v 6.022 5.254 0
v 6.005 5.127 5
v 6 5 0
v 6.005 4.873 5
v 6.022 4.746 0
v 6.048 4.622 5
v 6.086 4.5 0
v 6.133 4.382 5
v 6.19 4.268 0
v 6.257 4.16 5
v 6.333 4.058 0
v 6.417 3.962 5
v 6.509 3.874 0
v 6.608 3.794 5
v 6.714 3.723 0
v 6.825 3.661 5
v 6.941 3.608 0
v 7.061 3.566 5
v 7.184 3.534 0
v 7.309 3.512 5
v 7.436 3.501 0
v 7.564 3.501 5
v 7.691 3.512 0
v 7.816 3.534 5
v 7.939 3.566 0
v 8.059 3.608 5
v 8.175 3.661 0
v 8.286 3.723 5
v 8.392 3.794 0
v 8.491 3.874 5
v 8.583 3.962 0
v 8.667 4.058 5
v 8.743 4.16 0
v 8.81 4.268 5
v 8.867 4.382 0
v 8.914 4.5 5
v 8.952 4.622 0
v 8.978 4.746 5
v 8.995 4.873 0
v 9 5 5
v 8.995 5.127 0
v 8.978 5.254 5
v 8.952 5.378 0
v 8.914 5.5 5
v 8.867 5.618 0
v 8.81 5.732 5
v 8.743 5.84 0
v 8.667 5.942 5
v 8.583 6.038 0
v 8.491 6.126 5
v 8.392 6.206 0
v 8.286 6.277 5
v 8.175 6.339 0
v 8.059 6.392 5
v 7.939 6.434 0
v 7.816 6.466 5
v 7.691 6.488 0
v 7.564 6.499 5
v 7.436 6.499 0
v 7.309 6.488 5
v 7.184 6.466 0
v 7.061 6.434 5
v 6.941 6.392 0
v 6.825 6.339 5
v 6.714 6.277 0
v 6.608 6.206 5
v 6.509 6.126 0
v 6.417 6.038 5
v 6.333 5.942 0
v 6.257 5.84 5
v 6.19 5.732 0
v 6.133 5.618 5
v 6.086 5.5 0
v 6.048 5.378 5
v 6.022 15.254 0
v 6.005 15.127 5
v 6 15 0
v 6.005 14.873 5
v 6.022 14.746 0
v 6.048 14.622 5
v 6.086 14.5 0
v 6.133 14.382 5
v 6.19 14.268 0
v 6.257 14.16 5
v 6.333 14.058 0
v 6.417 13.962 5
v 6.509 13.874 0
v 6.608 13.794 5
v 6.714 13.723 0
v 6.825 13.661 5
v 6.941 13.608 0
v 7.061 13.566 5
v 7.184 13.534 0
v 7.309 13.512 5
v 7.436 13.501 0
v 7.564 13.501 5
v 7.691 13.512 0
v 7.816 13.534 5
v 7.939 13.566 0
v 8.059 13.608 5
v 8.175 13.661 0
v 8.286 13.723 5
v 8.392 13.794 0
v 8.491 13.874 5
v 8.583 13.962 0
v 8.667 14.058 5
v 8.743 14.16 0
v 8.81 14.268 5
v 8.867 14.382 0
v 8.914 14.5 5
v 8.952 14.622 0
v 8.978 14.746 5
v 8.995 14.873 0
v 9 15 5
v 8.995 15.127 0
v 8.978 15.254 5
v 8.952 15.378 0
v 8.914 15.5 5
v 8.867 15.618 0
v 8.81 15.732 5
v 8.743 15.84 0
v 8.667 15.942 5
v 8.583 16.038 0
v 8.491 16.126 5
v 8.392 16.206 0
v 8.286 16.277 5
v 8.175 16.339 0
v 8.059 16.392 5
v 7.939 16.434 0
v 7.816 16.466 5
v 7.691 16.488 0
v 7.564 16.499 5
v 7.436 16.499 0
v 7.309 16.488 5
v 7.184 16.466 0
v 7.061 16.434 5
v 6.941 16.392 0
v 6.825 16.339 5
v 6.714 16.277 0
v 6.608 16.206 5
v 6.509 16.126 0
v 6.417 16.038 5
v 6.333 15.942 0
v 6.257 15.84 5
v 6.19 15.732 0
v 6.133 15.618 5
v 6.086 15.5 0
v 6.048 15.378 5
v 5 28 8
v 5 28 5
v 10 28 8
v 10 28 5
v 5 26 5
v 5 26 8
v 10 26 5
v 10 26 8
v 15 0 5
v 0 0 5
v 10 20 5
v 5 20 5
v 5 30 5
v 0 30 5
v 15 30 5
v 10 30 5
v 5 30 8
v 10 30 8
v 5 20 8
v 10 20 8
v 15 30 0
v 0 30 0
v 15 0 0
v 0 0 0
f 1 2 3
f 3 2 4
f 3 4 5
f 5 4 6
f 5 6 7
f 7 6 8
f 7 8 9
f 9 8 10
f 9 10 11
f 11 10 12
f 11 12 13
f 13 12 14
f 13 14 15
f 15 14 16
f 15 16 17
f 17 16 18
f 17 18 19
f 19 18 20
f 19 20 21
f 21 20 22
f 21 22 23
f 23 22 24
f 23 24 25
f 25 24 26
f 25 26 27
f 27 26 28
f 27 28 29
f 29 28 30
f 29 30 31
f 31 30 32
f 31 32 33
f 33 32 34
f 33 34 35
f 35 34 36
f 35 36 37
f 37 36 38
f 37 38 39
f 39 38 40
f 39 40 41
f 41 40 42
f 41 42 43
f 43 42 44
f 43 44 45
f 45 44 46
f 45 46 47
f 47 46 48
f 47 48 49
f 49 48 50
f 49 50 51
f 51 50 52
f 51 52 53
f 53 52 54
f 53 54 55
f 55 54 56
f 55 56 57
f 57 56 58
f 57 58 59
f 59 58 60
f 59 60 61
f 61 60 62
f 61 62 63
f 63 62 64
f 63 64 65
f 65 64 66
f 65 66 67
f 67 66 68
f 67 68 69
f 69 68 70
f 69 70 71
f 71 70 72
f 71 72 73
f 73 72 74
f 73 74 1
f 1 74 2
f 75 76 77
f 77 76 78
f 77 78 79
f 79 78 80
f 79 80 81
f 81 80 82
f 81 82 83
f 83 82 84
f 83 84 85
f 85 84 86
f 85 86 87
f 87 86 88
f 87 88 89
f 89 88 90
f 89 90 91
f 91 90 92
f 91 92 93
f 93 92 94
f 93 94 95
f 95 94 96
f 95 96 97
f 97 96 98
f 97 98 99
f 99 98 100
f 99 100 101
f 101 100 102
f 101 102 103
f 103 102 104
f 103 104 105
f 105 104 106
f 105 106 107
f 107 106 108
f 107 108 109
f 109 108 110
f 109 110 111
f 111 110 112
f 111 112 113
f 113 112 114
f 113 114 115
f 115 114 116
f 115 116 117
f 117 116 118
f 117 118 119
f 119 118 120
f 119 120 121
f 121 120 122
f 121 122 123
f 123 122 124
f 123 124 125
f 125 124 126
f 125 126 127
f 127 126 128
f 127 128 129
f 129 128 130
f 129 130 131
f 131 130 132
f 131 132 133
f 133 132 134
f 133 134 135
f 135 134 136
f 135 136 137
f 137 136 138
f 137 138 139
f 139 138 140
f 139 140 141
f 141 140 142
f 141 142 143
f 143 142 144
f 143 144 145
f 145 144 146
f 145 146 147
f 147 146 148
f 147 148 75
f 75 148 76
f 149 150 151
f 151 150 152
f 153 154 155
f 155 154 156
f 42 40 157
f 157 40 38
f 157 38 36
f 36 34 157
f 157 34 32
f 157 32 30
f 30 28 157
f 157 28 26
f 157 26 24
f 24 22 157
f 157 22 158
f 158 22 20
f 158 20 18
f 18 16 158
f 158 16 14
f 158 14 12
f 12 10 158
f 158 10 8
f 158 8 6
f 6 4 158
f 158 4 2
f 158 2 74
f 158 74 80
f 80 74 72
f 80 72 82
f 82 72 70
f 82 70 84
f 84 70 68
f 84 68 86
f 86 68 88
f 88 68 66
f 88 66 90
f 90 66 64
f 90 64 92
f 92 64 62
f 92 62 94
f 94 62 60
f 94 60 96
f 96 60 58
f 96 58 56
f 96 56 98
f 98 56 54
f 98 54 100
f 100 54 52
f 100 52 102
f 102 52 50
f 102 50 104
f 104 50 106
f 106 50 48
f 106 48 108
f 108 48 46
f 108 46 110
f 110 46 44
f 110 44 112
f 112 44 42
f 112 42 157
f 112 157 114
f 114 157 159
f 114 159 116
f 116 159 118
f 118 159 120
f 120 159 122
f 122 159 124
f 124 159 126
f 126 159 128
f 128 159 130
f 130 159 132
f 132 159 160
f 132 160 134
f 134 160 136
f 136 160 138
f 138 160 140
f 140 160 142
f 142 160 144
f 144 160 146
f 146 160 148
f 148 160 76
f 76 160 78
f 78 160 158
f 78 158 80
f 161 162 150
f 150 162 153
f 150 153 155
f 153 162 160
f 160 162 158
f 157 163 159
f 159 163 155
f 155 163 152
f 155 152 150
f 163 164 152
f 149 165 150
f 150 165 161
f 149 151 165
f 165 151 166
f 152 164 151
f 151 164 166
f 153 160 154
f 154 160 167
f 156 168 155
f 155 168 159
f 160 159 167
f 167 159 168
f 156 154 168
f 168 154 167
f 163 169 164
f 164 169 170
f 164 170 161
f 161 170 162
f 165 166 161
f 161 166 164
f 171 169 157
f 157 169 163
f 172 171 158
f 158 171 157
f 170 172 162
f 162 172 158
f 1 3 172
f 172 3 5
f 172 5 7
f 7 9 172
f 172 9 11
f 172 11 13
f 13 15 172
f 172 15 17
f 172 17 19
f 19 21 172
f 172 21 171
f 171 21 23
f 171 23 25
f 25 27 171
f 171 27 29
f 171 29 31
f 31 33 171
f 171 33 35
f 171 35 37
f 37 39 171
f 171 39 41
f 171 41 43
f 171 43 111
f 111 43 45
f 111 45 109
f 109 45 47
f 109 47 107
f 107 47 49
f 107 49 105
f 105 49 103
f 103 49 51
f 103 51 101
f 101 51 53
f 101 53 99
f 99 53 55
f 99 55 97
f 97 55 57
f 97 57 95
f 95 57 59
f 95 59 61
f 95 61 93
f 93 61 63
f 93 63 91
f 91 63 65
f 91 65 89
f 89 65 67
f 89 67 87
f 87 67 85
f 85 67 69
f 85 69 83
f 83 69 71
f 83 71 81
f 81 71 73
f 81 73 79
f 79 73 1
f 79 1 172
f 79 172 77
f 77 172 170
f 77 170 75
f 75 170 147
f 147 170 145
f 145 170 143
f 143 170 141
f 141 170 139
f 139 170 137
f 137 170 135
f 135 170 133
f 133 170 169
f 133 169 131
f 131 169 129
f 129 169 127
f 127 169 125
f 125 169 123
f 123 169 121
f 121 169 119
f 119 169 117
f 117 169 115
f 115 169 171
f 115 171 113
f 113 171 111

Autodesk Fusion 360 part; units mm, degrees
sketch "Sketch1" plane through (0, 0, 0) normal (0, 0, 1) x (1, 0, 0)
  line L0 (0, 0) -> (15, 0)
  line L1 (15, 0) -> (15, 30)
  line L2 (15, 30) -> (0, 30)
  line L3 (0, 30) -> (0, 0)
extrude "Extrude1" add sketch "Sketch1" along normal blind 5
sketch "Sketch2" plane through (0, 0, 5) normal (0, 0, 1) x (1, 0, 0)
  line L0 (0, 30) -> (0, 0)
  line L1 (0, 0) -> (15, 0)
  line L2 (15, 0) -> (15, 30)
  line L3 (15, 30) -> (0, 30)
  line L4 (5, 30) -> (10, 30)
  line L5 (10, 30) -> (10, 20)
  line L6 (10, 20) -> (5, 20)
  line L7 (5, 20) -> (5, 30)
  dimension "d3" = 10
extrude "Extrude2" add sketch "Sketch2" along normal blind 3 contours L3 L4 L5 L6 L7
sketch "Sketch3" plane through (10, 0, 0) normal (1, 0, 0) x (0, 0, -1)
  line L0 (-5, 20) -> (-5, 30)
  line L1 (-5, 30) -> (-8, 30)
  line L2 (-8, 30) -> (-8, 20)
  line L3 (-8, 20) -> (-5, 20)
  line L4 (-8, 28) -> (-5, 28)
  line L5 (-5, 28) -> (-5, 26)
  line L6 (-5, 26) -> (-8, 26)
  line L7 (-8, 26) -> (-8, 28)
  dimension "d6" = 2
  dimension "d7" = 6
extrude "Extrude3" cut sketch "Sketch3" against normal blind 6 contours L0 L2 L4 L5 L6 L7
sketch "Sketch4" plane through (0, 0, 5) normal (0, 0, 1) x (1, 0, 0)
  line L0 (5, 28) -> (5, 30)
  line L1 (5, 30) -> (0, 30)
  line L2 (0, 30) -> (0, 0)
  line L3 (0, 0) -> (15, 0)
  line L4 (15, 0) -> (15, 30)
  line L5 (15, 30) -> (10, 30)
  line L6 (10, 30) -> (10, 28)
  line L7 (10, 28) -> (5, 28)
  line L8 (5, 26) -> (10, 26)
  line L9 (10, 26) -> (10, 20)
  line L10 (10, 20) -> (5, 20)
  line L11 (5, 20) -> (5, 26)
  point P0 (7.5, 5)
  point P1 (7.5, 15)
  dimension "d14" = 5
  dimension "d15" = 15
hole "Hole1" at (7.5, 5, 5) at (7.5, 15, 5) direction (0, 0, -1) diameter 3 end through all
